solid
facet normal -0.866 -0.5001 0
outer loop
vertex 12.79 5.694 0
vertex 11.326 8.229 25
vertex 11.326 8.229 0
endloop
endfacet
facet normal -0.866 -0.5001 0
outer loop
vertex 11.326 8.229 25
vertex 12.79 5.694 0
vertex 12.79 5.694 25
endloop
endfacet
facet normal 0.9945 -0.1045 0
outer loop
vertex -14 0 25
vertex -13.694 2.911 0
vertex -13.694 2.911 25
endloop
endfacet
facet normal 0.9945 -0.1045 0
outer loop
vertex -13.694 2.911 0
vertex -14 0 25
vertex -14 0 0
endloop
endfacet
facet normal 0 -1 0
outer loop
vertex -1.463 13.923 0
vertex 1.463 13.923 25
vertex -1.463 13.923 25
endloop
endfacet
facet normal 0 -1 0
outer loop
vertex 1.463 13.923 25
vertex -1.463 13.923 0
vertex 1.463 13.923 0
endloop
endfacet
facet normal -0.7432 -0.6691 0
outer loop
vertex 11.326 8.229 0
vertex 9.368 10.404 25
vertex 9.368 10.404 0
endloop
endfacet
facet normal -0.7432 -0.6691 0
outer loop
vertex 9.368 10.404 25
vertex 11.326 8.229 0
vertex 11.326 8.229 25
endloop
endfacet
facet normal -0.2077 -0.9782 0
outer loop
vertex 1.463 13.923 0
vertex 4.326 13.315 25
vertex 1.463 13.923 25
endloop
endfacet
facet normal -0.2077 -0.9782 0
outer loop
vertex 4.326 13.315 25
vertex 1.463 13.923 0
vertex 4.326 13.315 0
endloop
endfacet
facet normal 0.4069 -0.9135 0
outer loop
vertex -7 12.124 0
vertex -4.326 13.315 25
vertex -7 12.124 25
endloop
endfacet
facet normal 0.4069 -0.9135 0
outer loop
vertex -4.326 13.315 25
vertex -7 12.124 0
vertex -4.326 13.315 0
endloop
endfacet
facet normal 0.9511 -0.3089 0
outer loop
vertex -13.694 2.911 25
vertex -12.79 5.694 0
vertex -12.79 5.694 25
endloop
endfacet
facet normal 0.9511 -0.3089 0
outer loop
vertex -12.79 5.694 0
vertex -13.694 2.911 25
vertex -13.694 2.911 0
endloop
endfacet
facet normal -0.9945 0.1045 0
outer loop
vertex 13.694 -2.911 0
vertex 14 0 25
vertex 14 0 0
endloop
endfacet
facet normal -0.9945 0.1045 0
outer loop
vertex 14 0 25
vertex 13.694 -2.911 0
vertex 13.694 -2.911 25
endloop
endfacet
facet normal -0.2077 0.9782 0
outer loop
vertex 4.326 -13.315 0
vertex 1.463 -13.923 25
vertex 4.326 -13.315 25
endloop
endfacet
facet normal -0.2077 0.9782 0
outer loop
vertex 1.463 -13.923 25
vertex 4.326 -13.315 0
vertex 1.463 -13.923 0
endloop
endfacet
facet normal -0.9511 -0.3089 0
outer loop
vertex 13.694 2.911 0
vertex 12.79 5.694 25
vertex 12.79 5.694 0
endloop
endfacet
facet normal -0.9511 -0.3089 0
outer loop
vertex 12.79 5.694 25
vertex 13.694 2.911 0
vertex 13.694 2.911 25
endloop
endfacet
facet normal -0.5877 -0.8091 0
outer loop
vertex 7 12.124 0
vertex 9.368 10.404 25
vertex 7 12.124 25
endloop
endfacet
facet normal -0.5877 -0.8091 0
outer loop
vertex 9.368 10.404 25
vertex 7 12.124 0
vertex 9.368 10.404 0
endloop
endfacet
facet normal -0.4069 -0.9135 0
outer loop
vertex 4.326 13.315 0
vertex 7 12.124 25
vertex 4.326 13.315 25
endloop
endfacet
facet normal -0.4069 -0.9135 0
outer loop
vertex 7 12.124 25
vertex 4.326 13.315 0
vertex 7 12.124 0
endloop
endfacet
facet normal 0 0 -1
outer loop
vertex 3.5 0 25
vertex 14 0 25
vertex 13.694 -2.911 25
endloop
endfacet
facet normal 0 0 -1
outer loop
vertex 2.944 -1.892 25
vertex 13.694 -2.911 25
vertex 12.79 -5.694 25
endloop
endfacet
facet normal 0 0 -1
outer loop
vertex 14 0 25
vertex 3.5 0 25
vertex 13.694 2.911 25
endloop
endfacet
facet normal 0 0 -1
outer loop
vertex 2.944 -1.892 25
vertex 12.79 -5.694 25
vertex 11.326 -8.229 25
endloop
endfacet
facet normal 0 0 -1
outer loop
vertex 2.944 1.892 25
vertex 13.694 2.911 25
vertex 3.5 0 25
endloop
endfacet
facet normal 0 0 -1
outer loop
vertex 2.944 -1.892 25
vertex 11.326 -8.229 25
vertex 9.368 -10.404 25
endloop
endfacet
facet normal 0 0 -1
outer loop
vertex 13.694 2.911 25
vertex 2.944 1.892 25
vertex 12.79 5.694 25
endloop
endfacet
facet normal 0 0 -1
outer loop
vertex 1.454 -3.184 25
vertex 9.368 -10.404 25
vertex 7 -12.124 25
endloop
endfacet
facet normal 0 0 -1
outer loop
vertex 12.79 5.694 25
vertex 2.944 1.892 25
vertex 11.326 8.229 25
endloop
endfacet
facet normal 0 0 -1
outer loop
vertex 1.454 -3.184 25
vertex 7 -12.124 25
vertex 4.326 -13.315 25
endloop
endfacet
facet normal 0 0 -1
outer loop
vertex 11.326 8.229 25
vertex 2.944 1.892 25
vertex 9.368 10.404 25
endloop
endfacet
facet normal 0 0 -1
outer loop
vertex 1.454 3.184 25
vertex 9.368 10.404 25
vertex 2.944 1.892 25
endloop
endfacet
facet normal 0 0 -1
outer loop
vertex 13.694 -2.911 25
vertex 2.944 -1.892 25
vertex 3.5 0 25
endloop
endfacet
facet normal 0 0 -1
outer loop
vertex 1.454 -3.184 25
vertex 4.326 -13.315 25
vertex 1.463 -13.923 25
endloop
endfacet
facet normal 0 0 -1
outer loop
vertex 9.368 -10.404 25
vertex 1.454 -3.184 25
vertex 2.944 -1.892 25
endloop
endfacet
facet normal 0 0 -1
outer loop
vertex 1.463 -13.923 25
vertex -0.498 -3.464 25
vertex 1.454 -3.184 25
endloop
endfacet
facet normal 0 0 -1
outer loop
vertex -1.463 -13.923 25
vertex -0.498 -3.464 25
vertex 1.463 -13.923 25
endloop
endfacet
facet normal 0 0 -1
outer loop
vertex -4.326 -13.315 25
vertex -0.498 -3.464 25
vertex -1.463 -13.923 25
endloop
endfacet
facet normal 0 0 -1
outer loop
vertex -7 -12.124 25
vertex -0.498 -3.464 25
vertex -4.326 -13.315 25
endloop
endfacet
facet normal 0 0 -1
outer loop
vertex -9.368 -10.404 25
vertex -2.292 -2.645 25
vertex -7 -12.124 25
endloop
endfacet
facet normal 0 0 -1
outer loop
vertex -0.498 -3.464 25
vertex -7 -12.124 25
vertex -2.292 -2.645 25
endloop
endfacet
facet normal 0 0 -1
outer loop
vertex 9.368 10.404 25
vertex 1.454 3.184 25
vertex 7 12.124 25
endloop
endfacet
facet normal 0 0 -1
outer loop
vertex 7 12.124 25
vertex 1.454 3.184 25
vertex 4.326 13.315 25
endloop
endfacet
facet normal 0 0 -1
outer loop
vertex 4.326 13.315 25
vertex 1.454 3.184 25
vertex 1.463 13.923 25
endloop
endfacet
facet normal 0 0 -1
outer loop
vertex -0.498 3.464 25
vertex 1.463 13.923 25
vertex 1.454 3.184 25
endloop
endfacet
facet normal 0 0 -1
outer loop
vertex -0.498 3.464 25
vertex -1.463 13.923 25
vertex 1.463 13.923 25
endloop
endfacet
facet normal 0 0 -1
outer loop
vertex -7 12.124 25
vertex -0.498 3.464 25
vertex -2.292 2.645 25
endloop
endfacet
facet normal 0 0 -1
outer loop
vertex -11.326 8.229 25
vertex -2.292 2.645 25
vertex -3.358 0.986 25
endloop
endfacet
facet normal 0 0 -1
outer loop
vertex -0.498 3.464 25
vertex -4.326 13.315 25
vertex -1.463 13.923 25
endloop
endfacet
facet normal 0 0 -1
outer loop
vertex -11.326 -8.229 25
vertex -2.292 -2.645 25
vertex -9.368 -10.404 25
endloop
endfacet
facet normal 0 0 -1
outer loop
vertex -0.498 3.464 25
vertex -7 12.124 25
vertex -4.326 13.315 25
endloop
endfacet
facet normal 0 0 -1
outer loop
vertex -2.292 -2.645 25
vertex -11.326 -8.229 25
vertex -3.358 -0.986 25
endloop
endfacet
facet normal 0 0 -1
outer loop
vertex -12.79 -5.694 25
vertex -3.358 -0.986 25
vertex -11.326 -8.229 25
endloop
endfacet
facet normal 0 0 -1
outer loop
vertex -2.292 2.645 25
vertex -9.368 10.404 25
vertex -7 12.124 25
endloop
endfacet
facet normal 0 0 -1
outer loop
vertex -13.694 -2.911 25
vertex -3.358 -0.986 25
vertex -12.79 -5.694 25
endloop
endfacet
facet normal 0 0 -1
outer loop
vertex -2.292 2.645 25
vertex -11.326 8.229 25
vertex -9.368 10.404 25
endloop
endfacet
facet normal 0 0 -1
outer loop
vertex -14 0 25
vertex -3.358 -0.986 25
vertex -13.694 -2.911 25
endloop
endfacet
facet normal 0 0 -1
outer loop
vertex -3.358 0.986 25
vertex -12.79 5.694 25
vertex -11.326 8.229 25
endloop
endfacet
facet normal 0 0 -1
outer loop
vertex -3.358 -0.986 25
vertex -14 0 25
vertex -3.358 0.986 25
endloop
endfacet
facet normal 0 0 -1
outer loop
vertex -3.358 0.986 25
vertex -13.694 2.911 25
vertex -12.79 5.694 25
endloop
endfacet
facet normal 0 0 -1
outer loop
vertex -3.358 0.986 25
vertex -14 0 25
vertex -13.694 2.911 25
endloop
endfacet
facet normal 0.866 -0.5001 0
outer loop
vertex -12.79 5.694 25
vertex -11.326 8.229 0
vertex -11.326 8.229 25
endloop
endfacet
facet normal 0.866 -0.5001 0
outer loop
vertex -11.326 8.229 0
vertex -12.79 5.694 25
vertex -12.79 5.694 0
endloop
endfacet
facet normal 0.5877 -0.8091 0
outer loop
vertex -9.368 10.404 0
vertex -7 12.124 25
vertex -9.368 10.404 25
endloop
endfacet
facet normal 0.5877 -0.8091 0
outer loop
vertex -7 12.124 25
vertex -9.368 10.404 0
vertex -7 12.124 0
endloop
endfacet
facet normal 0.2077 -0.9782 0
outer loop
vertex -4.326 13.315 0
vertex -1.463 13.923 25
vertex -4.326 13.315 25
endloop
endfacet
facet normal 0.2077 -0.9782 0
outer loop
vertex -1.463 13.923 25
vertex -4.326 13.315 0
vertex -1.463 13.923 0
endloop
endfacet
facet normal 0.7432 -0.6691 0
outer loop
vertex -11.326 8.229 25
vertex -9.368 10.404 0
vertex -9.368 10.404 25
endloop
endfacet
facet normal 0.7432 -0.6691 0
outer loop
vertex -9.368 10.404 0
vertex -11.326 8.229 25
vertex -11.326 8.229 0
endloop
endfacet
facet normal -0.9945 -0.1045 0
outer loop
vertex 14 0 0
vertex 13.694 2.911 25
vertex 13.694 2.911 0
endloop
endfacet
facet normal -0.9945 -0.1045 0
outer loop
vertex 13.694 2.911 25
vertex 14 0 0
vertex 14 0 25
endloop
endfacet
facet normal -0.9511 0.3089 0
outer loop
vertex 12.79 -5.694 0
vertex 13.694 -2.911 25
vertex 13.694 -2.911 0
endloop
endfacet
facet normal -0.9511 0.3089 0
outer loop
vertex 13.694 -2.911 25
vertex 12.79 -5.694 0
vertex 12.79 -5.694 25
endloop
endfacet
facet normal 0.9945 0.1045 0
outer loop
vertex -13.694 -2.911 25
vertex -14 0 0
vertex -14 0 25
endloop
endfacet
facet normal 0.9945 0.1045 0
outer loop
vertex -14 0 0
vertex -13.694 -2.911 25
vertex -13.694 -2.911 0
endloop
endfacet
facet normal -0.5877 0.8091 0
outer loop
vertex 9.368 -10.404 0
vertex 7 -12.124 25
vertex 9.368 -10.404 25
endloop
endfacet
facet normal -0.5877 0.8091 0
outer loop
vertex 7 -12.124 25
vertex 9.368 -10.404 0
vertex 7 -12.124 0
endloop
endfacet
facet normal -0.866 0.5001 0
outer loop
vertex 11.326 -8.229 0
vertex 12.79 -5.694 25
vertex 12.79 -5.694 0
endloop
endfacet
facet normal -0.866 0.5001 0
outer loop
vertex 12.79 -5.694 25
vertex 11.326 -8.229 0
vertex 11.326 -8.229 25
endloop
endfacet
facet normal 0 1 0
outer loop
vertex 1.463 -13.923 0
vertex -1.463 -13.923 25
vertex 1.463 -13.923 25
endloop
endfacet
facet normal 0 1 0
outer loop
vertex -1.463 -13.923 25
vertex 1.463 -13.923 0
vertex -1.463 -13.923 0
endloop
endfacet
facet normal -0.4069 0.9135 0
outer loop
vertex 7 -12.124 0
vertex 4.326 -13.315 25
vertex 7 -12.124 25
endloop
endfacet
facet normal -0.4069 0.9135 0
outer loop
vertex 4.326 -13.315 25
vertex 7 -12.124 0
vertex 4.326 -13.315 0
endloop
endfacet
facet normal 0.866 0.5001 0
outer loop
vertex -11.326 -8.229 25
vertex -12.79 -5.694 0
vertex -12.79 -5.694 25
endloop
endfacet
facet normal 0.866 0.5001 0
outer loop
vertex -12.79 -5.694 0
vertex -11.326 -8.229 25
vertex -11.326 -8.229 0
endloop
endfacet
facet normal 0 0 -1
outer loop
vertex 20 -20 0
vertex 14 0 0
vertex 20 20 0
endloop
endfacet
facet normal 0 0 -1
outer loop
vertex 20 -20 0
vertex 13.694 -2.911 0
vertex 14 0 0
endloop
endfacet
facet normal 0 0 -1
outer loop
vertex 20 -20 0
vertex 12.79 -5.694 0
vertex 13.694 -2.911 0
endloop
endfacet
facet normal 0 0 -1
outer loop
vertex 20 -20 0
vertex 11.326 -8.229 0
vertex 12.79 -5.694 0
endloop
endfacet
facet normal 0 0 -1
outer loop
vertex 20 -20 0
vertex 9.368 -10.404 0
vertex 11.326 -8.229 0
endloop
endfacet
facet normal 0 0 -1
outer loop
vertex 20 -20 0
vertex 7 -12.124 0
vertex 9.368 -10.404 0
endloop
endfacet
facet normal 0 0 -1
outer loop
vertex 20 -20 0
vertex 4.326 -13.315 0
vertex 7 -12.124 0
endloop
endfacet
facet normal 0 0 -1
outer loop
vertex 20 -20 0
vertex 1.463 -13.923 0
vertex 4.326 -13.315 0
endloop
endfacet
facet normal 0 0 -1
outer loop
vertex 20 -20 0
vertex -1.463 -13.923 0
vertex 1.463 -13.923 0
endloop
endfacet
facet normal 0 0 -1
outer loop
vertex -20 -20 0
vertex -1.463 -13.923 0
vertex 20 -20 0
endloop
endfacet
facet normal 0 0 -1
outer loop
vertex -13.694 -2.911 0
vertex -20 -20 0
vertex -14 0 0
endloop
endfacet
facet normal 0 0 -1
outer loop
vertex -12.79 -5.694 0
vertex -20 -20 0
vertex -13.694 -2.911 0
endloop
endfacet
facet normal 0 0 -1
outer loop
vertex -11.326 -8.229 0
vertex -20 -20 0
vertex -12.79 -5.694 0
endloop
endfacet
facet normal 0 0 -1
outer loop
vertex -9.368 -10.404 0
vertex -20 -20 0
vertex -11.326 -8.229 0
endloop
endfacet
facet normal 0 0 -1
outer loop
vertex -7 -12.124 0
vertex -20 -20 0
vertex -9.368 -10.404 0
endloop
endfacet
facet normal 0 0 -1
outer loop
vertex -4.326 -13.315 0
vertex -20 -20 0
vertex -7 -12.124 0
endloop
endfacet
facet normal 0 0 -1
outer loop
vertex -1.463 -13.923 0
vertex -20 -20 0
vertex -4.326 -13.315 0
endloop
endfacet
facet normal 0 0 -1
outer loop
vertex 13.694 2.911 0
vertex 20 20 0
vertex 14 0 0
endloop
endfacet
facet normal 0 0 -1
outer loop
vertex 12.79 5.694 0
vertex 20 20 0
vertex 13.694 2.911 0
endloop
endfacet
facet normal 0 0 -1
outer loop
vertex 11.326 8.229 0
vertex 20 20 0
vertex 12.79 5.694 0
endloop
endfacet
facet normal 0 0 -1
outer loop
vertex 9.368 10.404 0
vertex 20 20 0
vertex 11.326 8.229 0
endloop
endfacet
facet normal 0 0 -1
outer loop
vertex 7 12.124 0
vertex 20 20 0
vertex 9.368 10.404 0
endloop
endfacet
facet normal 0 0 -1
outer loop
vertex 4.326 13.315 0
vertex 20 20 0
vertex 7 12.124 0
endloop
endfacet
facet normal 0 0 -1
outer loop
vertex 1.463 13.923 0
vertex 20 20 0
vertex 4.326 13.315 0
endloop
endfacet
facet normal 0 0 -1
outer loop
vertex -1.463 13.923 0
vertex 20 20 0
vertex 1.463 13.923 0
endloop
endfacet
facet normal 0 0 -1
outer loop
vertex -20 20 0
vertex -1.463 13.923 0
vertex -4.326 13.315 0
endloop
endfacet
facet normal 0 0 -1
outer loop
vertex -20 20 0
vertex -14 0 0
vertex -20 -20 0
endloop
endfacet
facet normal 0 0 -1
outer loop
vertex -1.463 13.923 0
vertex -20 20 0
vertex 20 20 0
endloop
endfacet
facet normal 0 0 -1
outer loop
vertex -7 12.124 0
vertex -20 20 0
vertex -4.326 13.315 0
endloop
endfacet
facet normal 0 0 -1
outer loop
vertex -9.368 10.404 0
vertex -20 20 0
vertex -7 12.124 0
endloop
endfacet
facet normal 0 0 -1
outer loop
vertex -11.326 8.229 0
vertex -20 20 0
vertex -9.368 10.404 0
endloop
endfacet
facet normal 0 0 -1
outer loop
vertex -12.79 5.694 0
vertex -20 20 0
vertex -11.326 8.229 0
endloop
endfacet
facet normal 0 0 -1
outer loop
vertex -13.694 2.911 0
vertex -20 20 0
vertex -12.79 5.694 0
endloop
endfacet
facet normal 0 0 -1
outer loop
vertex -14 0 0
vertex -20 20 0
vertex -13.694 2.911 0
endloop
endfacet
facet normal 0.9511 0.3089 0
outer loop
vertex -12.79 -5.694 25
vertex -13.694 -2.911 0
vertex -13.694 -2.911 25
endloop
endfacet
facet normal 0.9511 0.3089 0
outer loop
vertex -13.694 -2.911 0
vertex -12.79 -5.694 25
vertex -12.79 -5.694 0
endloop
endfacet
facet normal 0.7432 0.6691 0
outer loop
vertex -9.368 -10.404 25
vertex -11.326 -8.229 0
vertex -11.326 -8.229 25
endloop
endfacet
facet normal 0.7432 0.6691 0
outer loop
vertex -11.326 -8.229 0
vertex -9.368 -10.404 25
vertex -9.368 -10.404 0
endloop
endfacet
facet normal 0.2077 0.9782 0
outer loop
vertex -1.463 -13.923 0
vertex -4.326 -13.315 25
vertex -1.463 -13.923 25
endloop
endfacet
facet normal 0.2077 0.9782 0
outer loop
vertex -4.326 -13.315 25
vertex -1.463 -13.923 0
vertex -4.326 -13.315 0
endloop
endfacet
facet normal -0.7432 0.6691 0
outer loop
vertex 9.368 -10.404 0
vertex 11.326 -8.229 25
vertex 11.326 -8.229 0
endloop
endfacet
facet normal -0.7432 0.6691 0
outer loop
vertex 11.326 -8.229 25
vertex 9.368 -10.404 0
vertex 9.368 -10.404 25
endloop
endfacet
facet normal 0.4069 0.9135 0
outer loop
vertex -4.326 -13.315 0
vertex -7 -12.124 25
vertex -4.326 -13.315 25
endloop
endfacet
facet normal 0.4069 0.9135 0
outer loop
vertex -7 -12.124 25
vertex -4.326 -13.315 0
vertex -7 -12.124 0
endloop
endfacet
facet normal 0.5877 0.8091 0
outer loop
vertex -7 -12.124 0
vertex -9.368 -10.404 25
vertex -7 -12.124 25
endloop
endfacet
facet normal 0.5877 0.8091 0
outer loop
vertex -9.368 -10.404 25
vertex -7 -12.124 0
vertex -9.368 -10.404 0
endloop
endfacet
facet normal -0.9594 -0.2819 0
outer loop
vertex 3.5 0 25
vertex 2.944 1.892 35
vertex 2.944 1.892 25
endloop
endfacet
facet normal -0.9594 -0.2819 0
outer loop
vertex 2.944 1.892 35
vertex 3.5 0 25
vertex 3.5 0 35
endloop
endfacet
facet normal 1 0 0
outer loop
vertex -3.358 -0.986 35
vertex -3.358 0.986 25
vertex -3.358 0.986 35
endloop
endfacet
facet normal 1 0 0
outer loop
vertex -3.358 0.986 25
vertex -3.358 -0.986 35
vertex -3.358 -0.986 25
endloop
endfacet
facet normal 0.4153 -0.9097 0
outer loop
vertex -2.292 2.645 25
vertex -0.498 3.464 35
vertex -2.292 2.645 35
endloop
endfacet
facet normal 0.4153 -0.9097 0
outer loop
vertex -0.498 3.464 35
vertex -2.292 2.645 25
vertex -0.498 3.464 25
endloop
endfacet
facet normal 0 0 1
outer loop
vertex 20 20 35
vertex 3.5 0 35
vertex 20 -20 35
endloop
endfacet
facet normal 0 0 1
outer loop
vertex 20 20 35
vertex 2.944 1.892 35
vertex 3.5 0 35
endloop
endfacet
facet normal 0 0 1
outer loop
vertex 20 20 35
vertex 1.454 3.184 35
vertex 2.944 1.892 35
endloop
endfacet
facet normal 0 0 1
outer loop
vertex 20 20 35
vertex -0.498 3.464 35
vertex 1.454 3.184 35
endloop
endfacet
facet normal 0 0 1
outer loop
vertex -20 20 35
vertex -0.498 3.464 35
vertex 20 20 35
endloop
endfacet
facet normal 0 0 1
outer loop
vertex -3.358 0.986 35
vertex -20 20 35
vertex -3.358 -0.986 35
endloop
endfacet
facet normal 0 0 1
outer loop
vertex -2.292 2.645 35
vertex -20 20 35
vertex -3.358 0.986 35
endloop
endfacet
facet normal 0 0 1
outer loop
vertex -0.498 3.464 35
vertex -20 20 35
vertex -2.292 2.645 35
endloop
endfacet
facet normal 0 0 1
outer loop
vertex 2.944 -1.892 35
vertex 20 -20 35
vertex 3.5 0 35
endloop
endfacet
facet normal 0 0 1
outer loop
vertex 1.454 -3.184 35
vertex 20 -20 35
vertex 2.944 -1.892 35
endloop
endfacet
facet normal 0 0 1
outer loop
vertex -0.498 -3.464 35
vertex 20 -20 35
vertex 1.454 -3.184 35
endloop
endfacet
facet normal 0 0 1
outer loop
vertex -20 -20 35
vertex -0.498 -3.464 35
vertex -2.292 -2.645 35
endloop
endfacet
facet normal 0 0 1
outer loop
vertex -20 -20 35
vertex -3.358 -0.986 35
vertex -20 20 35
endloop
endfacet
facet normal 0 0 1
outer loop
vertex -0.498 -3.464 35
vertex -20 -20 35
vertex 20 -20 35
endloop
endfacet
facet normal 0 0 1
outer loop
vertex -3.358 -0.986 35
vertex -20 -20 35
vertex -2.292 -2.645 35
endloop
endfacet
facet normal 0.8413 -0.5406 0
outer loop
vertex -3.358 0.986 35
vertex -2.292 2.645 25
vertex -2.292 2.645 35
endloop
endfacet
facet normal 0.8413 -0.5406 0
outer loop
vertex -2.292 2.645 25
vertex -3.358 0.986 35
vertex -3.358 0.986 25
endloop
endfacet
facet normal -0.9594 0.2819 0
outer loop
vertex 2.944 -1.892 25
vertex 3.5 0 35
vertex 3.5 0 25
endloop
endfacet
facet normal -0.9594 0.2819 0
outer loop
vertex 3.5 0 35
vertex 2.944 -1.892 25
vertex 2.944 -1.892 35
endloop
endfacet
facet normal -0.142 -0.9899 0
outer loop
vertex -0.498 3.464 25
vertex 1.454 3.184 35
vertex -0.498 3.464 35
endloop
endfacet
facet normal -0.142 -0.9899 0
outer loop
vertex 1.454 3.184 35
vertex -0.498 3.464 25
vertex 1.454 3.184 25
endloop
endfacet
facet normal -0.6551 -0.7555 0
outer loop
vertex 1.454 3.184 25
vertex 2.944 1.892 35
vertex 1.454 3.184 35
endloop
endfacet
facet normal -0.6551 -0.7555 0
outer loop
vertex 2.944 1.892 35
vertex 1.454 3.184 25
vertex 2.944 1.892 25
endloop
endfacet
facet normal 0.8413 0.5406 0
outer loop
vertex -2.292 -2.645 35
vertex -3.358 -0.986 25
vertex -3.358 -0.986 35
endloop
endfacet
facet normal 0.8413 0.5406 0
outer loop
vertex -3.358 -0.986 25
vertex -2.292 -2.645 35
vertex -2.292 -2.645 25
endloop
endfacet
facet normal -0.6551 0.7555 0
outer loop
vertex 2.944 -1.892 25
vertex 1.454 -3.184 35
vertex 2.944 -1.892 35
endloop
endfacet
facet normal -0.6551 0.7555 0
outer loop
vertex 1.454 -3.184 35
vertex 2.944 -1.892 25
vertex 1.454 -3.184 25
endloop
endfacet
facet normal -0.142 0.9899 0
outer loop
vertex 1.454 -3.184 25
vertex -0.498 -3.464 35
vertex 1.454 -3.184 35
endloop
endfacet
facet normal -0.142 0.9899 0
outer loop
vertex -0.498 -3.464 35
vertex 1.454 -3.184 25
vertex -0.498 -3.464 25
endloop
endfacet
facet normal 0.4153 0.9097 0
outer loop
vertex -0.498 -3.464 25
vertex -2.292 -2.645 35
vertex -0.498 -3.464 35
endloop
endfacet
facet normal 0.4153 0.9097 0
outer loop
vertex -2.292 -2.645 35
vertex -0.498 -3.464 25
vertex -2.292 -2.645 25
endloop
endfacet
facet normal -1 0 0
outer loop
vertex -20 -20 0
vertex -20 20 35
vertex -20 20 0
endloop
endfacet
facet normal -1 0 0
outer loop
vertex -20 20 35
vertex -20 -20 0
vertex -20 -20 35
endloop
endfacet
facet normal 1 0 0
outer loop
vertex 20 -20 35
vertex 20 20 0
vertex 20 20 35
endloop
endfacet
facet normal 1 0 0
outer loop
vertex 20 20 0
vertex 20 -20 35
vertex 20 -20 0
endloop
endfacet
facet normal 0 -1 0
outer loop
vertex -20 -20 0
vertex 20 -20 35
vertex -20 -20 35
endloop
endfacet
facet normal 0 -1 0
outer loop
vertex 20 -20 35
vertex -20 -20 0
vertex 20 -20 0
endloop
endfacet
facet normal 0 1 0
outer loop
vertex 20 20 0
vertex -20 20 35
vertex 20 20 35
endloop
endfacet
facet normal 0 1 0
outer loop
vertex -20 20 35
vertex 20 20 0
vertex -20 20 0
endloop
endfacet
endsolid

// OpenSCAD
module pedalMountHole(){
    union(){
        cylinder(r=14,h=25);
        translate([0,0,25]) cylinder(r=3.5, h=10);
    }
}

module pedalBlock(w,d){
   difference(){
       translate([0,0,35/2])cube([w,d,35],center=true);
       pedalMountHole();
   } 
}

pedalBlock(40,40);
